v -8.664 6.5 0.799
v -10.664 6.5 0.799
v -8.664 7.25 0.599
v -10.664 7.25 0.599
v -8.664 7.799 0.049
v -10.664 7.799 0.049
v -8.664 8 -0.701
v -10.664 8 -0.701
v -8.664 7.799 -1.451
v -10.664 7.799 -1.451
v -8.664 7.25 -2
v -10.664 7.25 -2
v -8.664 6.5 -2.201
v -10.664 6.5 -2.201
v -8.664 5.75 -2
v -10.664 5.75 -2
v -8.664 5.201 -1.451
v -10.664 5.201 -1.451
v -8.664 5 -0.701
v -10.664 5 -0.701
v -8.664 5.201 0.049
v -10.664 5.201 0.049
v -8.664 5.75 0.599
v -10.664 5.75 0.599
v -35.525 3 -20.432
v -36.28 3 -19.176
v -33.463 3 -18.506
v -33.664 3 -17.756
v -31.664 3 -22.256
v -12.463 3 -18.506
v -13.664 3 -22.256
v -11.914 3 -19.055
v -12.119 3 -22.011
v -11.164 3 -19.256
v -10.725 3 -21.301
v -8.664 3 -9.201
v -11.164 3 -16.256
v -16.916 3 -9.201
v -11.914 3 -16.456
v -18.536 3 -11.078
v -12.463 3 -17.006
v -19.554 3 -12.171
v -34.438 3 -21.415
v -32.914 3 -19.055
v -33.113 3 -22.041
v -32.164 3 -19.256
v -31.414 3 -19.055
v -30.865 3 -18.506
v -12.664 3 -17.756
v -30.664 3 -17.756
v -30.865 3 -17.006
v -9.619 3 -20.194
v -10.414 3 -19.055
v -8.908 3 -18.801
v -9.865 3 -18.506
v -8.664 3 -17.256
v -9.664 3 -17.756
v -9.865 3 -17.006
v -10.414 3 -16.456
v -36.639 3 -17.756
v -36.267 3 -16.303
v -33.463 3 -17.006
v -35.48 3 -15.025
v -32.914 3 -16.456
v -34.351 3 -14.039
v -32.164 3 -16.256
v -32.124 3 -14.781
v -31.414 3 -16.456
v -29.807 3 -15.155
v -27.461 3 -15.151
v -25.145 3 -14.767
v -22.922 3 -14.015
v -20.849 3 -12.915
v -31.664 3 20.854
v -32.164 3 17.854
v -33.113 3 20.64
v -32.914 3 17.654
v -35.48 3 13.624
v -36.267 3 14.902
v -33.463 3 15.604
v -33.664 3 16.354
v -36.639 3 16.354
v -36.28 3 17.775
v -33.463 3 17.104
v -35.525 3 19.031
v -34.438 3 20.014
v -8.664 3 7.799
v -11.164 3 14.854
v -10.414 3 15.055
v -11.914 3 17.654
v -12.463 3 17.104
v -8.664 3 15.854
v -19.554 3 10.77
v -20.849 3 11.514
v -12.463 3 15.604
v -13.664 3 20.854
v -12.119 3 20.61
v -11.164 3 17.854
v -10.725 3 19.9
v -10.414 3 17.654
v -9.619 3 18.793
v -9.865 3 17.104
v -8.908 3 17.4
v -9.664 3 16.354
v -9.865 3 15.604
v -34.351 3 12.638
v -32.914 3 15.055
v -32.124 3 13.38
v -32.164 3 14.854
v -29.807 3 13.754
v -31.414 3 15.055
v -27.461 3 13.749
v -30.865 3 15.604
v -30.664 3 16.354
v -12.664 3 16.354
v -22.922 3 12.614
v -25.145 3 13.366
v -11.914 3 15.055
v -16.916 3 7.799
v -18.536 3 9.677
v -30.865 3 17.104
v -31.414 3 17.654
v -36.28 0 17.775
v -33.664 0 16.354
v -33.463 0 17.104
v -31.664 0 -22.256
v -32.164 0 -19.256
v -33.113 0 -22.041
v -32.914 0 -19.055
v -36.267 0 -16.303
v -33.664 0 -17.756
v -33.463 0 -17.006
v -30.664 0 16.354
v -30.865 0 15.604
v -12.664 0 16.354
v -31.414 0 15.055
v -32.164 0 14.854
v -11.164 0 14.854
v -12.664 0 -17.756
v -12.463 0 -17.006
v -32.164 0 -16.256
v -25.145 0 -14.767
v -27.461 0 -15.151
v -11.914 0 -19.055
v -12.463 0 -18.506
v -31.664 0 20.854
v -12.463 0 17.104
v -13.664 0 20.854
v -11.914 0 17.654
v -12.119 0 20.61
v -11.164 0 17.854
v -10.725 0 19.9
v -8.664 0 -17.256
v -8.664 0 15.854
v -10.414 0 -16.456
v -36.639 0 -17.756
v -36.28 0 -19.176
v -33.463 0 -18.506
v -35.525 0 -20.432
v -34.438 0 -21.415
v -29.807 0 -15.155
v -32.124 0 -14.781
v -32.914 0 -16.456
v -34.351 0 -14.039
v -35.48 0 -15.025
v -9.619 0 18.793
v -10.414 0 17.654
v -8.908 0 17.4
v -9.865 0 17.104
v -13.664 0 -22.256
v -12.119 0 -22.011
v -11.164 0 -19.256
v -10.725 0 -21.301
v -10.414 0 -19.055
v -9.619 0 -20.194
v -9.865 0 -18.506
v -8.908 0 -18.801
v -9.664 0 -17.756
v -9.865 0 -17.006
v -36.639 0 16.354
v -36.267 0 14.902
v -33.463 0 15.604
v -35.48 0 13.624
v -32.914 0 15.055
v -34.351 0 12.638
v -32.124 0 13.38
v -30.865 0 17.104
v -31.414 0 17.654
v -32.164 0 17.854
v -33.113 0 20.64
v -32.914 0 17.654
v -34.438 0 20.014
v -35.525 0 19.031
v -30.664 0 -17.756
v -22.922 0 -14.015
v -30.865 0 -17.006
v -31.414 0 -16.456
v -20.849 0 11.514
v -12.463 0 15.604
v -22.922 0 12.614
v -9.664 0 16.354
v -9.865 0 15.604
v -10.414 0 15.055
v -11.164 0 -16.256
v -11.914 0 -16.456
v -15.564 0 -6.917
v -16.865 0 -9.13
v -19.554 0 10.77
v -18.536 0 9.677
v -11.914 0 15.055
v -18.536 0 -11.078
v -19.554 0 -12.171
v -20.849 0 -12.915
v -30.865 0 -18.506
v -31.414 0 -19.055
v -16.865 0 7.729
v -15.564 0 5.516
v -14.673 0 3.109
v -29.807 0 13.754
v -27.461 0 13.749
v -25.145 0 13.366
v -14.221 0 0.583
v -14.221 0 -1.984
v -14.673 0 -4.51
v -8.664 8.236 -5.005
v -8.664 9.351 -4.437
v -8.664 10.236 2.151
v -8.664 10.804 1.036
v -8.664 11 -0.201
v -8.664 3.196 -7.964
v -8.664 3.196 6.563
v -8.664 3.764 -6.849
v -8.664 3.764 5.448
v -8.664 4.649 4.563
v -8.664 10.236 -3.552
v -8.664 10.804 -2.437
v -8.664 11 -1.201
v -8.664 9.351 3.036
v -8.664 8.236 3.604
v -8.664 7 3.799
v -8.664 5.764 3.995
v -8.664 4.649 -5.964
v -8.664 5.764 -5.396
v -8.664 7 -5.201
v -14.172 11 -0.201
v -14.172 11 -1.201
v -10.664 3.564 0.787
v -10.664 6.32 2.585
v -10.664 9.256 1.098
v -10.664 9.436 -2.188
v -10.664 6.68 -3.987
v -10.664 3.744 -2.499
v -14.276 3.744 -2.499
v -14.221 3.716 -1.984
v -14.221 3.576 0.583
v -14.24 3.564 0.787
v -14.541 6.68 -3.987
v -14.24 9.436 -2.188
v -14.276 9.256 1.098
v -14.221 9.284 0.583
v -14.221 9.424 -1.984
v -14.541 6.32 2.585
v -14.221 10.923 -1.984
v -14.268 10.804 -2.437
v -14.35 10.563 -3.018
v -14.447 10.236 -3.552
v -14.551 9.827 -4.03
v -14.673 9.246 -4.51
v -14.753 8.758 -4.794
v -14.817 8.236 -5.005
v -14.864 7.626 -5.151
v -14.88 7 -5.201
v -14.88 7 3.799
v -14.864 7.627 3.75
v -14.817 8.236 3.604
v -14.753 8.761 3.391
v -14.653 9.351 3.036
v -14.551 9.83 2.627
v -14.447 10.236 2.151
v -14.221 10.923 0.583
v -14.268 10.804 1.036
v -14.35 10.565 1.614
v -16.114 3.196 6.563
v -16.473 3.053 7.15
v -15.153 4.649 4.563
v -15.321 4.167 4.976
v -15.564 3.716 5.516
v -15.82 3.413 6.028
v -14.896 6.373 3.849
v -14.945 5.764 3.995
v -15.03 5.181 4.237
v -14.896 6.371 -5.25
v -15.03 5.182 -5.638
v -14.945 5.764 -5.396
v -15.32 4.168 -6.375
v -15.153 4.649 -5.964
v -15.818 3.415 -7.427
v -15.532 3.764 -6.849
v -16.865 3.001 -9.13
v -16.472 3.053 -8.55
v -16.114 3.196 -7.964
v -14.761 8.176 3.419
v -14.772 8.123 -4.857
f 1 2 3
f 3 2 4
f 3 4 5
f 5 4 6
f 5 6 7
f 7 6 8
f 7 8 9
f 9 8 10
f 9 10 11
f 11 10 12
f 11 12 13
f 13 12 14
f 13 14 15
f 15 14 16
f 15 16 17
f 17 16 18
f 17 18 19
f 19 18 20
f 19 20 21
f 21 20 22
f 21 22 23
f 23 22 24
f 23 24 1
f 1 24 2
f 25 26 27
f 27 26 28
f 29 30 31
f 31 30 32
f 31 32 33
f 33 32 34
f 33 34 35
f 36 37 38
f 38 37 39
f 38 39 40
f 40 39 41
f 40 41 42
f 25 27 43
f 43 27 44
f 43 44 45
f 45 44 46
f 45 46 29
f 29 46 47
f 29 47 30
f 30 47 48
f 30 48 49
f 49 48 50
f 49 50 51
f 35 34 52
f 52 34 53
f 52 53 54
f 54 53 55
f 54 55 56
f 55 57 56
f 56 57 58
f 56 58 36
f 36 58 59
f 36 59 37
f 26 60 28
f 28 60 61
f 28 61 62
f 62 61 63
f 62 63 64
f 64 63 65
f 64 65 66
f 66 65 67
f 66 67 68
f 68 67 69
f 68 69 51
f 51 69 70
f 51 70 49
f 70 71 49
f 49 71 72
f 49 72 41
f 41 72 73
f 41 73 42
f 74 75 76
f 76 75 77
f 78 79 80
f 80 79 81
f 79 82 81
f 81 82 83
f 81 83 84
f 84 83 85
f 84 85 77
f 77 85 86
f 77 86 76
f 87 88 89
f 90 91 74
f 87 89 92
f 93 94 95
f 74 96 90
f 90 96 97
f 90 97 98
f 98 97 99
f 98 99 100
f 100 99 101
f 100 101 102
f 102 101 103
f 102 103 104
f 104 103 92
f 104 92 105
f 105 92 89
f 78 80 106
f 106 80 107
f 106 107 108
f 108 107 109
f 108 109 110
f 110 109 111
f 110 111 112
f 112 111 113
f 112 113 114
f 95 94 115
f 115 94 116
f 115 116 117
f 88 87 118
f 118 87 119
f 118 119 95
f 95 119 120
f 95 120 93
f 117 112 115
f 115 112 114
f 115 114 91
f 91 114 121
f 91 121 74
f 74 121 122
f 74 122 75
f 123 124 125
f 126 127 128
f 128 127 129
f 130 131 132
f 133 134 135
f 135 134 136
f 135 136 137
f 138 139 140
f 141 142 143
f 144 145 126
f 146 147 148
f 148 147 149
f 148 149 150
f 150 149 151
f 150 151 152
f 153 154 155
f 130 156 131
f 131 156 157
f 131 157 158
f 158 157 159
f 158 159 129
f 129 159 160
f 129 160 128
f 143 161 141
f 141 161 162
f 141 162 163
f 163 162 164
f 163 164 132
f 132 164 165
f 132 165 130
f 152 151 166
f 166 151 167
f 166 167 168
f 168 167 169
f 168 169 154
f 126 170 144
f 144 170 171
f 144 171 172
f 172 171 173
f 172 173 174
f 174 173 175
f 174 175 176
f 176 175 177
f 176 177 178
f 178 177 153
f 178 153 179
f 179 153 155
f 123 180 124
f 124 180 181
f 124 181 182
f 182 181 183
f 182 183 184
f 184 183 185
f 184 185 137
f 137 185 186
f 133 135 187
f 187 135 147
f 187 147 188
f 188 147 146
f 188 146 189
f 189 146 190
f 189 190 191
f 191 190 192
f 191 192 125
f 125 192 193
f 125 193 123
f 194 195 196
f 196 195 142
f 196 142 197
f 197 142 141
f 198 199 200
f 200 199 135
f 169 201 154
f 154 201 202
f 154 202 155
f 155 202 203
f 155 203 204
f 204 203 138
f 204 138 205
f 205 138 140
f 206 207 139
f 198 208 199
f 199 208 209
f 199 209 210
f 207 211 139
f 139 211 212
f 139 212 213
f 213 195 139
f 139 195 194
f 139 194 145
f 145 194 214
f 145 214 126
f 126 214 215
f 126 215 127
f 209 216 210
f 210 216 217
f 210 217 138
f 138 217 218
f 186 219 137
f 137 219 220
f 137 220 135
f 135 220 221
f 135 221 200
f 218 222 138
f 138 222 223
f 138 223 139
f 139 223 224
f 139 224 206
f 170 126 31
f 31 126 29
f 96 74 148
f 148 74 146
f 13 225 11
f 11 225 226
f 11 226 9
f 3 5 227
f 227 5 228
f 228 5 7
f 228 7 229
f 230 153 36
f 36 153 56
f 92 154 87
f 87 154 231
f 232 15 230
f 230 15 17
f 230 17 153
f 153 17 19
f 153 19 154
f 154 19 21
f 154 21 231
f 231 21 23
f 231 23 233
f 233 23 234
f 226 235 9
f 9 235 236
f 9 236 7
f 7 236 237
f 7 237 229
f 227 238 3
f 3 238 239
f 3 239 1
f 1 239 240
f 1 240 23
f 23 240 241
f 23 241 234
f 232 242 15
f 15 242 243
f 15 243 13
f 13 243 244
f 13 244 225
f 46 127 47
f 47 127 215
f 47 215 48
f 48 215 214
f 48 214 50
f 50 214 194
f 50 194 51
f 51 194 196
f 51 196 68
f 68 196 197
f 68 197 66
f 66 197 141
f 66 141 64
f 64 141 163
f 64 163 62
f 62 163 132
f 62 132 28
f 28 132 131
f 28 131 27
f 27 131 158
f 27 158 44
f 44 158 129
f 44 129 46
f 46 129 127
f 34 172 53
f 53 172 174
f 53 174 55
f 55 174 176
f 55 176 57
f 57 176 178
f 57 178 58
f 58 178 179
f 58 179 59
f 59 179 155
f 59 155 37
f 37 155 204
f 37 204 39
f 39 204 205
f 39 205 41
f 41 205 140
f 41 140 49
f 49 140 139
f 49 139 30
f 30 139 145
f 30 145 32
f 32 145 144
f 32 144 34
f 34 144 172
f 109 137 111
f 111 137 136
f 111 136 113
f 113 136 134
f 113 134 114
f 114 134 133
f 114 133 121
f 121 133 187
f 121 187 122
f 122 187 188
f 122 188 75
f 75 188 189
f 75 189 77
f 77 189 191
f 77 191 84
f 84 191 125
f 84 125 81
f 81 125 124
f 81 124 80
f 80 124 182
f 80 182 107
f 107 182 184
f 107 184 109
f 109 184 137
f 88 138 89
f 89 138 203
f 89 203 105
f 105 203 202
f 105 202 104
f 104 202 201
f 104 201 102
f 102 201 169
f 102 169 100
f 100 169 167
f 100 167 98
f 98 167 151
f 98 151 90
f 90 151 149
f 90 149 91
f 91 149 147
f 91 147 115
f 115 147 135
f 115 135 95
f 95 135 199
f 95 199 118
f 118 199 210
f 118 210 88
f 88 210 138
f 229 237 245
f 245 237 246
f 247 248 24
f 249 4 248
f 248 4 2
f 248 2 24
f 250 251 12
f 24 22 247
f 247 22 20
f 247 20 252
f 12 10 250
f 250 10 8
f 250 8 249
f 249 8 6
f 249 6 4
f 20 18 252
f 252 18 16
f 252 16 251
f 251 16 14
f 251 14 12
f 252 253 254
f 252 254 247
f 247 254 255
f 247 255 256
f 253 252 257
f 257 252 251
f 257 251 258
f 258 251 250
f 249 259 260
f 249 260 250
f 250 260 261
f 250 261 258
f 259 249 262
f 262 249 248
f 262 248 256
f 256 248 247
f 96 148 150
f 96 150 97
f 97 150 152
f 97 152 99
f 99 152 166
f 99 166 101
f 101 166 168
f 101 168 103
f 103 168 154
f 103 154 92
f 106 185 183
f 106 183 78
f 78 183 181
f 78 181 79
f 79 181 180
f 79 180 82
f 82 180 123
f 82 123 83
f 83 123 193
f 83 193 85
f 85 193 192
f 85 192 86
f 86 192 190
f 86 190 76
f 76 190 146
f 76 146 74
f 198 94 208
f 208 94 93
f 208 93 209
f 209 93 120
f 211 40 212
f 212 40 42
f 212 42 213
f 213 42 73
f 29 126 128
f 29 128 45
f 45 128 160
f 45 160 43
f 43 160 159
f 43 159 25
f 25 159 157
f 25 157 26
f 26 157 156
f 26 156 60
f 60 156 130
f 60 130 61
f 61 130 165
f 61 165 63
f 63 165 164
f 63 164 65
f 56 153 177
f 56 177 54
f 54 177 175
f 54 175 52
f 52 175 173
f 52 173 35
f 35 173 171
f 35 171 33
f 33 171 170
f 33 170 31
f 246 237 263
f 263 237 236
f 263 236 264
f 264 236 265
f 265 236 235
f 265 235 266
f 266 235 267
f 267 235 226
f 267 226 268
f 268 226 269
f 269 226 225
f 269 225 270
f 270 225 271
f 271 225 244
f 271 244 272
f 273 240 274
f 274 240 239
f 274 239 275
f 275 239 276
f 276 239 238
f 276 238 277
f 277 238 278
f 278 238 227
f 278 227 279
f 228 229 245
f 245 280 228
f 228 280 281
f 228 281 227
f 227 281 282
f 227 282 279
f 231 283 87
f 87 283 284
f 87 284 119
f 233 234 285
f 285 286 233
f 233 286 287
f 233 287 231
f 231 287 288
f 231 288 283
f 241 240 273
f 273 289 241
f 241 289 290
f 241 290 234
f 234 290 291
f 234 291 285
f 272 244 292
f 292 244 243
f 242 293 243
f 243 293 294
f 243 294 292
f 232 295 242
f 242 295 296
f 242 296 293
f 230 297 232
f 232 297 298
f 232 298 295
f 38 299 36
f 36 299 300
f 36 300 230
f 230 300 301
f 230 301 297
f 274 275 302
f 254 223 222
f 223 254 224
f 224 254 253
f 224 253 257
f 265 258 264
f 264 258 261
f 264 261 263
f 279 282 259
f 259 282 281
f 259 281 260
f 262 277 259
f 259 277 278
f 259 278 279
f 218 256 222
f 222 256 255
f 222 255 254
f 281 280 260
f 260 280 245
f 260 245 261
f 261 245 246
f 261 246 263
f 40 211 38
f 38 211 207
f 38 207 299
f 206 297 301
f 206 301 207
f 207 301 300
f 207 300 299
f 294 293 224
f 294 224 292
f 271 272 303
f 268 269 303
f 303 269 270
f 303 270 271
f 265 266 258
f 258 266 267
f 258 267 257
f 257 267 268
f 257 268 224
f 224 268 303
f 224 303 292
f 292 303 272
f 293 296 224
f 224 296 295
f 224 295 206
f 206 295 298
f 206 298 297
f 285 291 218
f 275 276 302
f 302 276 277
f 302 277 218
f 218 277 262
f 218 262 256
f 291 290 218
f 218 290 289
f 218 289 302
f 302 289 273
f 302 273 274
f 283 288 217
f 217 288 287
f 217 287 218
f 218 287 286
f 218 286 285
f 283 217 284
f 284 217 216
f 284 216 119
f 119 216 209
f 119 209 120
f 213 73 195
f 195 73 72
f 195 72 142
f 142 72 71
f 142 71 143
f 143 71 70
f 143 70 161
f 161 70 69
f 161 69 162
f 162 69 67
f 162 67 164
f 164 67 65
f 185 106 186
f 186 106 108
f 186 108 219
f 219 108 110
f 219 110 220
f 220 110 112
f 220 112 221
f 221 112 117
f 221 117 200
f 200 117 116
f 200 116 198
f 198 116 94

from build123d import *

# Parameters (mm, degrees)
ESQUISSE1_R                  = 1.5
BOSS_EXTRU_1_DEPTH           = 3
ESQUISSE2_W                  = 9
ESQUISSE2_H                  = 9
BOSS_EXTRU_2_DEPTH           = 8
ESQUISSE3_R                  = 1.5
ENL_V_MAT_EXTRU_1_DEPTH      = 32.261930151
ENL_V_MAT_EXTRU_2_DEPTH      = 7
CONG_1_R                     = 5
CONG_2_R                     = 4
CONG_3_R                     = 4
ENL_V_MAT_EXTRU_3_DEPTH      = 44.608458759
ENL_V_MAT_EXTRU_3_DEPTH_BACK = 44.608458759
ESQUISSE5_R                  = 14.5


# Some blends are built 0.0001 mm under size
with BuildPart() as part:
    # Esquisse1 → Boss.-Extru.1 (new body)
    with BuildSketch(Plane(origin=(0, 0, 0), x_dir=(1, 0, 0), z_dir=(0, 1, 0))):
        Polygon((-36.663695412, 22.255522388), (-36.663695412, 13.255522388), (-17.663695412, 13.255522388), (-17.663695412, -11.854477612), (-36.663695412, -11.854477612), (-36.663695412, -20.854477612), (-8.663695412, -20.854477612), (-8.663695412, 22.255522388), align=None)
        with Locations(Location((-32.163695412, 17.755522388, 0), (0, 0, 270))):
            Circle(ESQUISSE1_R, mode=Mode.SUBTRACT)
        with Locations(Location((-11.163695412, 17.755522388, 0), (0, 0, 270))):
            Circle(ESQUISSE1_R, mode=Mode.SUBTRACT)
        with Locations(Location((-32.163695412, -16.354477612, 0), (0, 0, 270))):
            Circle(ESQUISSE1_R, mode=Mode.SUBTRACT)
        with Locations(Location((-11.163695412, -16.354477612, 0), (0, 0, 270))):
            Circle(ESQUISSE1_R, mode=Mode.SUBTRACT)
    extrude(amount=BOSS_EXTRU_1_DEPTH)

    # Esquisse2 → Boss.-Extru.2 (add)
    with BuildSketch(Plane(origin=(0, 3, 0), x_dir=(1, 0, 0), z_dir=(0, 1, 0))):
        with Locations((-13.163695412, 0.700522388)):
            Rectangle(ESQUISSE2_W, ESQUISSE2_H)
    extrude(amount=BOSS_EXTRU_2_DEPTH)

    # Esquisse3 → Enlèv. mat.-Extru.1 (cut, through all)
    with BuildSketch(Plane.ZY.offset(17.663695412)):
        with Locations((-0.700522388, 6.5)):
            Circle(ESQUISSE3_R)
    extrude(amount=-ENL_V_MAT_EXTRU_1_DEPTH, mode=Mode.SUBTRACT)

    # Esquisse4 → Enlèv. mat.-Extru.2 (cut)
    with BuildSketch(Plane.ZY.offset(17.663695412)):
        Polygon((0.786926245, 3.564442716), (2.58546911, 6.320389661), (1.098020477, 9.255946944), (-2.187971021, 9.435557284), (-3.986513886, 6.679610339), (-2.499065254, 3.744053056), align=None)
    extrude(amount=-ENL_V_MAT_EXTRU_2_DEPTH, mode=Mode.SUBTRACT)

    # Congé1
    # the kernel refuses this fillet: 5 mm, written as the material it adds along each edge
    with BuildSketch(Plane(origin=(-17.663695412, 0, 11.854477612), x_dir=(0, 0, -1), z_dir=(0, 1, 0)), Plane(origin=(-17.663695412, 0, -13.255522388), x_dir=(-1, 0, 0), z_dir=(0, 1, 0))) as cong_1_piece_1:
        with BuildLine():
            CenterArc((CONG_1_R, CONG_1_R), CONG_1_R, 180, 90)
            Line((0, CONG_1_R), (0, 0))
            Line((0, 0), (CONG_1_R, 0))
        make_face()
    extrude(amount=3)
    # the kernel refuses this fillet: 5 mm, written as the material it takes off along each edge
    with BuildSketch(Plane(origin=(-8.663695412, -12.5, 20.854477612), x_dir=(0, 0, -1), z_dir=(0, 1, 0)), Plane(origin=(-8.663695412, -12.5, -22.255522388), x_dir=(-1, 0, 0), z_dir=(0, 1, 0)), Plane(origin=(-36.663695412, -12.5, -22.255522388), x_dir=(0, 0, 1), z_dir=(0, 1, 0))) as cong_1_2_piece_1:
        with BuildLine():
            CenterArc((CONG_1_R, CONG_1_R), CONG_1_R, 180, 90)
            Line((0, CONG_1_R), (0, 0))
            Line((0, 0), (CONG_1_R, 0))
        make_face()
    extrude(amount=28, mode=Mode.SUBTRACT)
    with BuildSketch(Plane(origin=(-36.663695412, -12.5, 20.854477612), x_dir=(0, 0, -1), z_dir=(0, 1, 0)), Plane(origin=(-36.663695412, -12.5, 11.854477612), x_dir=(1, 0, 0), z_dir=(0, 1, 0)), Plane(origin=(-36.663695412, -12.5, -13.255522388), x_dir=(0, 0, -1), z_dir=(0, 1, 0))) as cong_1_2_piece_2:
        with BuildLine():
            CenterArc((CONG_1_R, -CONG_1_R), CONG_1_R, 90, 90)
            Line((0, -CONG_1_R), (0, 0))
            Line((0, 0), (CONG_1_R, 0))
        make_face()
    extrude(amount=28, mode=Mode.SUBTRACT)

    # Congé2
    cong_2_edges = [part.edges().sort_by_distance(p)[0] for p in [
        (-13.163695412, 11, 3.799477612),
        (-13.163695412, 11, -5.200522388),
    ]]
    fillet(cong_2_edges, radius=CONG_2_R)

    # Congé3
    cong_3_edges = [part.edges().sort_by_distance(p)[0] for p in [
        (-13.163695412, 3, 3.799477612),
        (-13.163695412, 3, -5.200522388),
    ]]
    fillet(cong_3_edges, radius=CONG_3_R - 0.0001)  # a hair under: the kernel refuses the full size

    # Esquisse5 → Enlèv. mat.-Extru.3 (cut, two sides: drawn at the far end of the back side and taken through both)
    with BuildSketch(Plane(origin=(0, 3, 0), x_dir=(1, 0, 0), z_dir=(0, 1, 0)).offset(-ENL_V_MAT_EXTRU_3_DEPTH_BACK)):
        with Locations((-28.663695412, 0.700522388)):
            Circle(ESQUISSE5_R)
    extrude(amount=ENL_V_MAT_EXTRU_3_DEPTH + ENL_V_MAT_EXTRU_3_DEPTH_BACK, mode=Mode.SUBTRACT)


solid = part.part
